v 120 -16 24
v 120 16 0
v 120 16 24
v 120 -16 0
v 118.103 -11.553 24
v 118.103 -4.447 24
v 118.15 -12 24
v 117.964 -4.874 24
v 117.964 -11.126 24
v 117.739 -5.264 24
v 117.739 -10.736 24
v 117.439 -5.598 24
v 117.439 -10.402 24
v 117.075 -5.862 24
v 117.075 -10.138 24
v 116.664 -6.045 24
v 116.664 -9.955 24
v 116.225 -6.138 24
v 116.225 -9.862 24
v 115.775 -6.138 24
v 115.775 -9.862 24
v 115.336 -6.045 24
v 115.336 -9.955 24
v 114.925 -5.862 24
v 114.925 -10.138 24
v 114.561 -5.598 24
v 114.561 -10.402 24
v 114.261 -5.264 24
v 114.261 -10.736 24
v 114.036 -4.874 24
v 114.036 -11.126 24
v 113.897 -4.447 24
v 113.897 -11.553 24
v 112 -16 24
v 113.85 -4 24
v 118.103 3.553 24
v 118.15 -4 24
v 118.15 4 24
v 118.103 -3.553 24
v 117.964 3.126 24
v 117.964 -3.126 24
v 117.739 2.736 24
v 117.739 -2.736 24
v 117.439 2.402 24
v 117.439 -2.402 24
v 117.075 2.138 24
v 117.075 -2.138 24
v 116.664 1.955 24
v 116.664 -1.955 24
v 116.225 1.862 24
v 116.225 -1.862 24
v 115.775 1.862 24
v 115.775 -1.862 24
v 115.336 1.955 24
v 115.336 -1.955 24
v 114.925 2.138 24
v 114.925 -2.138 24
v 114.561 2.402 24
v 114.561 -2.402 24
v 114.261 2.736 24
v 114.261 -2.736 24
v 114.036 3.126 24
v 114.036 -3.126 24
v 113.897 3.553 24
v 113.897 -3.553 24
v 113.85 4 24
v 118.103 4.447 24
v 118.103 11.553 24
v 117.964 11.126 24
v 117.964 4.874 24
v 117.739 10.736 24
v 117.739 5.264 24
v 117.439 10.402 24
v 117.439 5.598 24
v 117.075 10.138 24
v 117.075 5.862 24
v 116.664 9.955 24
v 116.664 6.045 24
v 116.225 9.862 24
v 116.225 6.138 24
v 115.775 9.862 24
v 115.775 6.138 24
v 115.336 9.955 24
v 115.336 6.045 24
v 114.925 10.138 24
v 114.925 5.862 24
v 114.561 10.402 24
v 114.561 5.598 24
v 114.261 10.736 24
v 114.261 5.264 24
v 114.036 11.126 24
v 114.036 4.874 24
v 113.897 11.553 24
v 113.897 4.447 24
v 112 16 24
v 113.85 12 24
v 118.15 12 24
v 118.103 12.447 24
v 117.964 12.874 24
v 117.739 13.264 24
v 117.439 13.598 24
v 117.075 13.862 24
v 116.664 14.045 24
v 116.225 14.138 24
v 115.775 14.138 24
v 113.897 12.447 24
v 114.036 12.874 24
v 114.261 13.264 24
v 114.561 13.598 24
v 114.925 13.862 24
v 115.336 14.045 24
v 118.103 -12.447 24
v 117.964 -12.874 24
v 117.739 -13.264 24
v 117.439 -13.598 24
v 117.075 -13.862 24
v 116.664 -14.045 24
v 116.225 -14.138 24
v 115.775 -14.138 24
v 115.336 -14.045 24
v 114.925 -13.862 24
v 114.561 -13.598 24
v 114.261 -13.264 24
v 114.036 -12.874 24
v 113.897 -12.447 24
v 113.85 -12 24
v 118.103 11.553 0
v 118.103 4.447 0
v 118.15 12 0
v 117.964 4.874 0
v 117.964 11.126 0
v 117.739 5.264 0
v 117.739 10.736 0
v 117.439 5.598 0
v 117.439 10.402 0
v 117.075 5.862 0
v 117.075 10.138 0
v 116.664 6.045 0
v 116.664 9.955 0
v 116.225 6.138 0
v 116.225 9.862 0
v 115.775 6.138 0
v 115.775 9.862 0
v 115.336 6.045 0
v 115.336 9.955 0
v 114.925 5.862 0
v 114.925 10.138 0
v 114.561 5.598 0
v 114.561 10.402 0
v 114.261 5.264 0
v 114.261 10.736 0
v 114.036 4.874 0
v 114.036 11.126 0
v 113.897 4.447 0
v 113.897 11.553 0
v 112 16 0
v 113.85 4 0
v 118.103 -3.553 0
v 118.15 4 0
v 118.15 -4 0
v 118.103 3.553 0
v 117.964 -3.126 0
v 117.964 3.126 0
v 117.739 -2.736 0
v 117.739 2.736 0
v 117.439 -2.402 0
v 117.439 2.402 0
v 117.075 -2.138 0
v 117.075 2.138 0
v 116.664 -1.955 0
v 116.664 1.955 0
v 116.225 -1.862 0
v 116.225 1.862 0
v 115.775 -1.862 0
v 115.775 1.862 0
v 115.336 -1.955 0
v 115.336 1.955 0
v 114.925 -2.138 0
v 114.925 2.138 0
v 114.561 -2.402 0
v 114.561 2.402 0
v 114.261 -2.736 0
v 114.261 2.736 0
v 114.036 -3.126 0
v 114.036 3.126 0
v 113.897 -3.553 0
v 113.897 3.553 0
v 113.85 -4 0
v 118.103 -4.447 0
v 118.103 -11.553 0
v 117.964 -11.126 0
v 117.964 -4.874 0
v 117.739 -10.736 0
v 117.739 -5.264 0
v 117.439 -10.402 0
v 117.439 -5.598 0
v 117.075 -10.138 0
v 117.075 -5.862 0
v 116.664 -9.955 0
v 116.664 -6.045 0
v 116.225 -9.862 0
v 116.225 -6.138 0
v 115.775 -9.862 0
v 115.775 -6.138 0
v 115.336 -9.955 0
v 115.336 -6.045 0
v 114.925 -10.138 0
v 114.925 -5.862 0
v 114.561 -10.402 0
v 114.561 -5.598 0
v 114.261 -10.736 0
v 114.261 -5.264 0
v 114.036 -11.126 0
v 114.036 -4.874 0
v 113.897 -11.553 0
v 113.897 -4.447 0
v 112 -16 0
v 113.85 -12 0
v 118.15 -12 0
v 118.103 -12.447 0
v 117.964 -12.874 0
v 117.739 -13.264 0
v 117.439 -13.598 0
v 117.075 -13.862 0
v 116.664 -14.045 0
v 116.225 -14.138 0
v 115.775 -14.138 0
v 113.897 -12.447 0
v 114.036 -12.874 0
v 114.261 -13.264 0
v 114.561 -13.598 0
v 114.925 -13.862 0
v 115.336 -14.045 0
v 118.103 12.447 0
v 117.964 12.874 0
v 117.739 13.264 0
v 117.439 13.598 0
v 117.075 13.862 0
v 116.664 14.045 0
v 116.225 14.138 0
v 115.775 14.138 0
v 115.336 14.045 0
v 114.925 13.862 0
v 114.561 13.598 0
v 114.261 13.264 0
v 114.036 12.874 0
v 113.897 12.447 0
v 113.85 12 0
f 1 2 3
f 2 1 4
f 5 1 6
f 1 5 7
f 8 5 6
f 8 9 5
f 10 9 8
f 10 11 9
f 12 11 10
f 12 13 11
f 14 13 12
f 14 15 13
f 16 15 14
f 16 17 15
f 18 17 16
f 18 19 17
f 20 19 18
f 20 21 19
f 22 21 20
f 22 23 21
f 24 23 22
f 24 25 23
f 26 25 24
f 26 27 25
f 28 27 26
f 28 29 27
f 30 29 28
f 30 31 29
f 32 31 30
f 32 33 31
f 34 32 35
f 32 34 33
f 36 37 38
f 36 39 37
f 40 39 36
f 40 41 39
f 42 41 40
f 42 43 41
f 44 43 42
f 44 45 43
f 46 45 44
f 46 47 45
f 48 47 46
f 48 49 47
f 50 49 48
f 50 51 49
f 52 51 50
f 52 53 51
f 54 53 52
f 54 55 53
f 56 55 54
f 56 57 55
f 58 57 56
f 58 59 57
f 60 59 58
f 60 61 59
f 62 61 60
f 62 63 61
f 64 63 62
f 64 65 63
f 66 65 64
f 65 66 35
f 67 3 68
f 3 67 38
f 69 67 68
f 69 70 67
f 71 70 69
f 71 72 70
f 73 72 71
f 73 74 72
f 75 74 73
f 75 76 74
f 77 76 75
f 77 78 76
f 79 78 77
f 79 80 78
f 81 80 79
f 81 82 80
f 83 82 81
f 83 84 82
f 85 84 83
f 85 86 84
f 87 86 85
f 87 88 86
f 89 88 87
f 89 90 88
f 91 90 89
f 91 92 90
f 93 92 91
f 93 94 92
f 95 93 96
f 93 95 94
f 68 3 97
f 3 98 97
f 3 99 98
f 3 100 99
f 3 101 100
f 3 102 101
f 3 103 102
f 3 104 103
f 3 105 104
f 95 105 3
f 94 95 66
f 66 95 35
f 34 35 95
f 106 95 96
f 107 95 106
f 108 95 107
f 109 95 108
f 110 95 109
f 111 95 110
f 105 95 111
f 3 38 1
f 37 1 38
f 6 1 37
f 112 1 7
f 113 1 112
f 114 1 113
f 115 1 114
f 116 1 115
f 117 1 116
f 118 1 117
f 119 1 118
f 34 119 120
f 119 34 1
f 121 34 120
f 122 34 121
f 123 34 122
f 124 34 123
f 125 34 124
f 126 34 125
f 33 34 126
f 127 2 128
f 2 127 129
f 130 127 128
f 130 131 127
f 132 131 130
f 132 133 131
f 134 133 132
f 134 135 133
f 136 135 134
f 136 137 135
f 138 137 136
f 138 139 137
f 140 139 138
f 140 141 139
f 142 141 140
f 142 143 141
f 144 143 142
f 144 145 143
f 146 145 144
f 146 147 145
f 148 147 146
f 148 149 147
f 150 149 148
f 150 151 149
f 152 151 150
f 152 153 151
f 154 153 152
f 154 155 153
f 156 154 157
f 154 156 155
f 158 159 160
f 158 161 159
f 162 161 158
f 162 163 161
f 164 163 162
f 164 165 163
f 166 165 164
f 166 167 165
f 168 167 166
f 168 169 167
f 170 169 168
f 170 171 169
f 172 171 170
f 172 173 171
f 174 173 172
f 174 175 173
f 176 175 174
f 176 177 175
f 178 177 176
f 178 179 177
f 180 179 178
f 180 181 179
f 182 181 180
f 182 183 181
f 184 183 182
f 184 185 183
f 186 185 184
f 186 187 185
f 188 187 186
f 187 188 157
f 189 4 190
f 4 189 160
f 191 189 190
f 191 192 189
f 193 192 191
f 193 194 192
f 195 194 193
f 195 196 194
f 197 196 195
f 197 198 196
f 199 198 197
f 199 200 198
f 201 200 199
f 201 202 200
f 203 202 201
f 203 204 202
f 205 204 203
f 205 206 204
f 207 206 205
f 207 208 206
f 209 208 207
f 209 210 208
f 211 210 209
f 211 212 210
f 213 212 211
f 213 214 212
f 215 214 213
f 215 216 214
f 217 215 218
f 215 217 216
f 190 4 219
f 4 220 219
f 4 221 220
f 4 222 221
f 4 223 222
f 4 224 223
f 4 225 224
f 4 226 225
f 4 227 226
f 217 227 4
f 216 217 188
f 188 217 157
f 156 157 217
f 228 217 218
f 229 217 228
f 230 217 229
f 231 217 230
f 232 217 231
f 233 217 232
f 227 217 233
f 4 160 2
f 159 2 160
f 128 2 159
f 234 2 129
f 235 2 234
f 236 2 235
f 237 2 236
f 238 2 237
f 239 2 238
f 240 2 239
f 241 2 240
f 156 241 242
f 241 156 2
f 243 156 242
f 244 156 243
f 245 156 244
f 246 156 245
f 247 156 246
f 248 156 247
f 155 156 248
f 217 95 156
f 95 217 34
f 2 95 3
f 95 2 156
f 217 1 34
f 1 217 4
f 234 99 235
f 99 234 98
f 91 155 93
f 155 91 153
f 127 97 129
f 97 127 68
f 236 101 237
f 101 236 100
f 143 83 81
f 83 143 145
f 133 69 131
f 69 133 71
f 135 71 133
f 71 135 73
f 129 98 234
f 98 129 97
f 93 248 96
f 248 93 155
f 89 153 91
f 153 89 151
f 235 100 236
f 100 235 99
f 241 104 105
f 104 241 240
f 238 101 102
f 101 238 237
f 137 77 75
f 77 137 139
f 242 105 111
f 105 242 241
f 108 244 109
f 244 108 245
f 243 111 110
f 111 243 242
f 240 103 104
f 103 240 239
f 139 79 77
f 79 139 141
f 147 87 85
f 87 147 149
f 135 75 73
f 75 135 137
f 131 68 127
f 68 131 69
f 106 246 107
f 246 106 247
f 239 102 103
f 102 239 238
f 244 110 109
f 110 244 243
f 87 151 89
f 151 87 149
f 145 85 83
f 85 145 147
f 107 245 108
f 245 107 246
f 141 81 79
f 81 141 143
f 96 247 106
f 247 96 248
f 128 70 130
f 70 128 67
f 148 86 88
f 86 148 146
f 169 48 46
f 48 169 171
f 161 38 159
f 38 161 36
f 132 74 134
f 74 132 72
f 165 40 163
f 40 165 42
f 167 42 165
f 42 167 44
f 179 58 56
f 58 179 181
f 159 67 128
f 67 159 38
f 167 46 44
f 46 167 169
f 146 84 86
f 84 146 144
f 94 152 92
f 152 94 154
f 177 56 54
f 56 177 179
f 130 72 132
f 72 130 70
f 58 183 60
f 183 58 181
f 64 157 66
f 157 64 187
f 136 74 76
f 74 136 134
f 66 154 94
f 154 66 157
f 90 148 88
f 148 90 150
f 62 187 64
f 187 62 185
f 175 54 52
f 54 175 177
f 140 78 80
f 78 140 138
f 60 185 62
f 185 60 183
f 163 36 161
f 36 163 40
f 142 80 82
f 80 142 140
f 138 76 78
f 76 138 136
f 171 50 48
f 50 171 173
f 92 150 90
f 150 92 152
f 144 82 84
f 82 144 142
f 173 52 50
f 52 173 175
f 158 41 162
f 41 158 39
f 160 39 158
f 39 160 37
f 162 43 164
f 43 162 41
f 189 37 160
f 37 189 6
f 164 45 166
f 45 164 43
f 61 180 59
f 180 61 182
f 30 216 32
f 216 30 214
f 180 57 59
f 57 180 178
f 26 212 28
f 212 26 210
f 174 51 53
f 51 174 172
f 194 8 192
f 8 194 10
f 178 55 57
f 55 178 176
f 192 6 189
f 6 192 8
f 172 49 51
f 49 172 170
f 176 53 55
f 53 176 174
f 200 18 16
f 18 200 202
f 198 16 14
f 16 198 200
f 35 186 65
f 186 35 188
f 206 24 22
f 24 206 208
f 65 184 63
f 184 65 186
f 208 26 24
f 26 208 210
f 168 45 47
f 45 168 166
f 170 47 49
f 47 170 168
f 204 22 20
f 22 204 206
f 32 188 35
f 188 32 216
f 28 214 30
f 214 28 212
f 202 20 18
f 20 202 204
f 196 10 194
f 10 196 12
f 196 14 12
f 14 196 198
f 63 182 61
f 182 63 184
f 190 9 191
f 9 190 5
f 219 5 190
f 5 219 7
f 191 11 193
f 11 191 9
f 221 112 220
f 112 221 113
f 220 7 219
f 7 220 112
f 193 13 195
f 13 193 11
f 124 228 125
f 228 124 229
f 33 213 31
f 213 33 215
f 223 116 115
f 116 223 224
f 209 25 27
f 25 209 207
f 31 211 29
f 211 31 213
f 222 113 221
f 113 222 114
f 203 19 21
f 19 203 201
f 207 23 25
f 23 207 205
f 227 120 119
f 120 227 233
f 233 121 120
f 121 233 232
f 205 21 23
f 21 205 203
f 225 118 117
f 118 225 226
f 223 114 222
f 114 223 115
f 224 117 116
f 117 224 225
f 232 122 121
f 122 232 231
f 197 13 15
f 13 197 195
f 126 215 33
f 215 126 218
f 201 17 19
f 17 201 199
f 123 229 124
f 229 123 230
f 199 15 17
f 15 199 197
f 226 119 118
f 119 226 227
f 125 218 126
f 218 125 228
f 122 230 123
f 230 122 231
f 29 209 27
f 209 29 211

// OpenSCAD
difference(){
    translate([112,-16,0])
    cube([8,32,24]);
    
    // Hole 1
    translate([116,28,-2])
    cylinder(r=2.15,44, $fn=30);
    
    // Hole 2
    translate([116,20,-2])
    cylinder(r=2.15,44, $fn=30);
    
    // Hole 3
    translate([116,12,-2])
    cylinder(r=2.15,44, $fn=30);
    
    // Hole 4
    translate([116,4,-2])
    cylinder(r=2.15,44, $fn=30);
    
    // Hole 5
    translate([116,-4,-2])
    cylinder(r=2.15,44, $fn=30);
    
    // Hole 6
    translate([116,-12,-2])
    cylinder(r=2.15,44, $fn=30);
}
